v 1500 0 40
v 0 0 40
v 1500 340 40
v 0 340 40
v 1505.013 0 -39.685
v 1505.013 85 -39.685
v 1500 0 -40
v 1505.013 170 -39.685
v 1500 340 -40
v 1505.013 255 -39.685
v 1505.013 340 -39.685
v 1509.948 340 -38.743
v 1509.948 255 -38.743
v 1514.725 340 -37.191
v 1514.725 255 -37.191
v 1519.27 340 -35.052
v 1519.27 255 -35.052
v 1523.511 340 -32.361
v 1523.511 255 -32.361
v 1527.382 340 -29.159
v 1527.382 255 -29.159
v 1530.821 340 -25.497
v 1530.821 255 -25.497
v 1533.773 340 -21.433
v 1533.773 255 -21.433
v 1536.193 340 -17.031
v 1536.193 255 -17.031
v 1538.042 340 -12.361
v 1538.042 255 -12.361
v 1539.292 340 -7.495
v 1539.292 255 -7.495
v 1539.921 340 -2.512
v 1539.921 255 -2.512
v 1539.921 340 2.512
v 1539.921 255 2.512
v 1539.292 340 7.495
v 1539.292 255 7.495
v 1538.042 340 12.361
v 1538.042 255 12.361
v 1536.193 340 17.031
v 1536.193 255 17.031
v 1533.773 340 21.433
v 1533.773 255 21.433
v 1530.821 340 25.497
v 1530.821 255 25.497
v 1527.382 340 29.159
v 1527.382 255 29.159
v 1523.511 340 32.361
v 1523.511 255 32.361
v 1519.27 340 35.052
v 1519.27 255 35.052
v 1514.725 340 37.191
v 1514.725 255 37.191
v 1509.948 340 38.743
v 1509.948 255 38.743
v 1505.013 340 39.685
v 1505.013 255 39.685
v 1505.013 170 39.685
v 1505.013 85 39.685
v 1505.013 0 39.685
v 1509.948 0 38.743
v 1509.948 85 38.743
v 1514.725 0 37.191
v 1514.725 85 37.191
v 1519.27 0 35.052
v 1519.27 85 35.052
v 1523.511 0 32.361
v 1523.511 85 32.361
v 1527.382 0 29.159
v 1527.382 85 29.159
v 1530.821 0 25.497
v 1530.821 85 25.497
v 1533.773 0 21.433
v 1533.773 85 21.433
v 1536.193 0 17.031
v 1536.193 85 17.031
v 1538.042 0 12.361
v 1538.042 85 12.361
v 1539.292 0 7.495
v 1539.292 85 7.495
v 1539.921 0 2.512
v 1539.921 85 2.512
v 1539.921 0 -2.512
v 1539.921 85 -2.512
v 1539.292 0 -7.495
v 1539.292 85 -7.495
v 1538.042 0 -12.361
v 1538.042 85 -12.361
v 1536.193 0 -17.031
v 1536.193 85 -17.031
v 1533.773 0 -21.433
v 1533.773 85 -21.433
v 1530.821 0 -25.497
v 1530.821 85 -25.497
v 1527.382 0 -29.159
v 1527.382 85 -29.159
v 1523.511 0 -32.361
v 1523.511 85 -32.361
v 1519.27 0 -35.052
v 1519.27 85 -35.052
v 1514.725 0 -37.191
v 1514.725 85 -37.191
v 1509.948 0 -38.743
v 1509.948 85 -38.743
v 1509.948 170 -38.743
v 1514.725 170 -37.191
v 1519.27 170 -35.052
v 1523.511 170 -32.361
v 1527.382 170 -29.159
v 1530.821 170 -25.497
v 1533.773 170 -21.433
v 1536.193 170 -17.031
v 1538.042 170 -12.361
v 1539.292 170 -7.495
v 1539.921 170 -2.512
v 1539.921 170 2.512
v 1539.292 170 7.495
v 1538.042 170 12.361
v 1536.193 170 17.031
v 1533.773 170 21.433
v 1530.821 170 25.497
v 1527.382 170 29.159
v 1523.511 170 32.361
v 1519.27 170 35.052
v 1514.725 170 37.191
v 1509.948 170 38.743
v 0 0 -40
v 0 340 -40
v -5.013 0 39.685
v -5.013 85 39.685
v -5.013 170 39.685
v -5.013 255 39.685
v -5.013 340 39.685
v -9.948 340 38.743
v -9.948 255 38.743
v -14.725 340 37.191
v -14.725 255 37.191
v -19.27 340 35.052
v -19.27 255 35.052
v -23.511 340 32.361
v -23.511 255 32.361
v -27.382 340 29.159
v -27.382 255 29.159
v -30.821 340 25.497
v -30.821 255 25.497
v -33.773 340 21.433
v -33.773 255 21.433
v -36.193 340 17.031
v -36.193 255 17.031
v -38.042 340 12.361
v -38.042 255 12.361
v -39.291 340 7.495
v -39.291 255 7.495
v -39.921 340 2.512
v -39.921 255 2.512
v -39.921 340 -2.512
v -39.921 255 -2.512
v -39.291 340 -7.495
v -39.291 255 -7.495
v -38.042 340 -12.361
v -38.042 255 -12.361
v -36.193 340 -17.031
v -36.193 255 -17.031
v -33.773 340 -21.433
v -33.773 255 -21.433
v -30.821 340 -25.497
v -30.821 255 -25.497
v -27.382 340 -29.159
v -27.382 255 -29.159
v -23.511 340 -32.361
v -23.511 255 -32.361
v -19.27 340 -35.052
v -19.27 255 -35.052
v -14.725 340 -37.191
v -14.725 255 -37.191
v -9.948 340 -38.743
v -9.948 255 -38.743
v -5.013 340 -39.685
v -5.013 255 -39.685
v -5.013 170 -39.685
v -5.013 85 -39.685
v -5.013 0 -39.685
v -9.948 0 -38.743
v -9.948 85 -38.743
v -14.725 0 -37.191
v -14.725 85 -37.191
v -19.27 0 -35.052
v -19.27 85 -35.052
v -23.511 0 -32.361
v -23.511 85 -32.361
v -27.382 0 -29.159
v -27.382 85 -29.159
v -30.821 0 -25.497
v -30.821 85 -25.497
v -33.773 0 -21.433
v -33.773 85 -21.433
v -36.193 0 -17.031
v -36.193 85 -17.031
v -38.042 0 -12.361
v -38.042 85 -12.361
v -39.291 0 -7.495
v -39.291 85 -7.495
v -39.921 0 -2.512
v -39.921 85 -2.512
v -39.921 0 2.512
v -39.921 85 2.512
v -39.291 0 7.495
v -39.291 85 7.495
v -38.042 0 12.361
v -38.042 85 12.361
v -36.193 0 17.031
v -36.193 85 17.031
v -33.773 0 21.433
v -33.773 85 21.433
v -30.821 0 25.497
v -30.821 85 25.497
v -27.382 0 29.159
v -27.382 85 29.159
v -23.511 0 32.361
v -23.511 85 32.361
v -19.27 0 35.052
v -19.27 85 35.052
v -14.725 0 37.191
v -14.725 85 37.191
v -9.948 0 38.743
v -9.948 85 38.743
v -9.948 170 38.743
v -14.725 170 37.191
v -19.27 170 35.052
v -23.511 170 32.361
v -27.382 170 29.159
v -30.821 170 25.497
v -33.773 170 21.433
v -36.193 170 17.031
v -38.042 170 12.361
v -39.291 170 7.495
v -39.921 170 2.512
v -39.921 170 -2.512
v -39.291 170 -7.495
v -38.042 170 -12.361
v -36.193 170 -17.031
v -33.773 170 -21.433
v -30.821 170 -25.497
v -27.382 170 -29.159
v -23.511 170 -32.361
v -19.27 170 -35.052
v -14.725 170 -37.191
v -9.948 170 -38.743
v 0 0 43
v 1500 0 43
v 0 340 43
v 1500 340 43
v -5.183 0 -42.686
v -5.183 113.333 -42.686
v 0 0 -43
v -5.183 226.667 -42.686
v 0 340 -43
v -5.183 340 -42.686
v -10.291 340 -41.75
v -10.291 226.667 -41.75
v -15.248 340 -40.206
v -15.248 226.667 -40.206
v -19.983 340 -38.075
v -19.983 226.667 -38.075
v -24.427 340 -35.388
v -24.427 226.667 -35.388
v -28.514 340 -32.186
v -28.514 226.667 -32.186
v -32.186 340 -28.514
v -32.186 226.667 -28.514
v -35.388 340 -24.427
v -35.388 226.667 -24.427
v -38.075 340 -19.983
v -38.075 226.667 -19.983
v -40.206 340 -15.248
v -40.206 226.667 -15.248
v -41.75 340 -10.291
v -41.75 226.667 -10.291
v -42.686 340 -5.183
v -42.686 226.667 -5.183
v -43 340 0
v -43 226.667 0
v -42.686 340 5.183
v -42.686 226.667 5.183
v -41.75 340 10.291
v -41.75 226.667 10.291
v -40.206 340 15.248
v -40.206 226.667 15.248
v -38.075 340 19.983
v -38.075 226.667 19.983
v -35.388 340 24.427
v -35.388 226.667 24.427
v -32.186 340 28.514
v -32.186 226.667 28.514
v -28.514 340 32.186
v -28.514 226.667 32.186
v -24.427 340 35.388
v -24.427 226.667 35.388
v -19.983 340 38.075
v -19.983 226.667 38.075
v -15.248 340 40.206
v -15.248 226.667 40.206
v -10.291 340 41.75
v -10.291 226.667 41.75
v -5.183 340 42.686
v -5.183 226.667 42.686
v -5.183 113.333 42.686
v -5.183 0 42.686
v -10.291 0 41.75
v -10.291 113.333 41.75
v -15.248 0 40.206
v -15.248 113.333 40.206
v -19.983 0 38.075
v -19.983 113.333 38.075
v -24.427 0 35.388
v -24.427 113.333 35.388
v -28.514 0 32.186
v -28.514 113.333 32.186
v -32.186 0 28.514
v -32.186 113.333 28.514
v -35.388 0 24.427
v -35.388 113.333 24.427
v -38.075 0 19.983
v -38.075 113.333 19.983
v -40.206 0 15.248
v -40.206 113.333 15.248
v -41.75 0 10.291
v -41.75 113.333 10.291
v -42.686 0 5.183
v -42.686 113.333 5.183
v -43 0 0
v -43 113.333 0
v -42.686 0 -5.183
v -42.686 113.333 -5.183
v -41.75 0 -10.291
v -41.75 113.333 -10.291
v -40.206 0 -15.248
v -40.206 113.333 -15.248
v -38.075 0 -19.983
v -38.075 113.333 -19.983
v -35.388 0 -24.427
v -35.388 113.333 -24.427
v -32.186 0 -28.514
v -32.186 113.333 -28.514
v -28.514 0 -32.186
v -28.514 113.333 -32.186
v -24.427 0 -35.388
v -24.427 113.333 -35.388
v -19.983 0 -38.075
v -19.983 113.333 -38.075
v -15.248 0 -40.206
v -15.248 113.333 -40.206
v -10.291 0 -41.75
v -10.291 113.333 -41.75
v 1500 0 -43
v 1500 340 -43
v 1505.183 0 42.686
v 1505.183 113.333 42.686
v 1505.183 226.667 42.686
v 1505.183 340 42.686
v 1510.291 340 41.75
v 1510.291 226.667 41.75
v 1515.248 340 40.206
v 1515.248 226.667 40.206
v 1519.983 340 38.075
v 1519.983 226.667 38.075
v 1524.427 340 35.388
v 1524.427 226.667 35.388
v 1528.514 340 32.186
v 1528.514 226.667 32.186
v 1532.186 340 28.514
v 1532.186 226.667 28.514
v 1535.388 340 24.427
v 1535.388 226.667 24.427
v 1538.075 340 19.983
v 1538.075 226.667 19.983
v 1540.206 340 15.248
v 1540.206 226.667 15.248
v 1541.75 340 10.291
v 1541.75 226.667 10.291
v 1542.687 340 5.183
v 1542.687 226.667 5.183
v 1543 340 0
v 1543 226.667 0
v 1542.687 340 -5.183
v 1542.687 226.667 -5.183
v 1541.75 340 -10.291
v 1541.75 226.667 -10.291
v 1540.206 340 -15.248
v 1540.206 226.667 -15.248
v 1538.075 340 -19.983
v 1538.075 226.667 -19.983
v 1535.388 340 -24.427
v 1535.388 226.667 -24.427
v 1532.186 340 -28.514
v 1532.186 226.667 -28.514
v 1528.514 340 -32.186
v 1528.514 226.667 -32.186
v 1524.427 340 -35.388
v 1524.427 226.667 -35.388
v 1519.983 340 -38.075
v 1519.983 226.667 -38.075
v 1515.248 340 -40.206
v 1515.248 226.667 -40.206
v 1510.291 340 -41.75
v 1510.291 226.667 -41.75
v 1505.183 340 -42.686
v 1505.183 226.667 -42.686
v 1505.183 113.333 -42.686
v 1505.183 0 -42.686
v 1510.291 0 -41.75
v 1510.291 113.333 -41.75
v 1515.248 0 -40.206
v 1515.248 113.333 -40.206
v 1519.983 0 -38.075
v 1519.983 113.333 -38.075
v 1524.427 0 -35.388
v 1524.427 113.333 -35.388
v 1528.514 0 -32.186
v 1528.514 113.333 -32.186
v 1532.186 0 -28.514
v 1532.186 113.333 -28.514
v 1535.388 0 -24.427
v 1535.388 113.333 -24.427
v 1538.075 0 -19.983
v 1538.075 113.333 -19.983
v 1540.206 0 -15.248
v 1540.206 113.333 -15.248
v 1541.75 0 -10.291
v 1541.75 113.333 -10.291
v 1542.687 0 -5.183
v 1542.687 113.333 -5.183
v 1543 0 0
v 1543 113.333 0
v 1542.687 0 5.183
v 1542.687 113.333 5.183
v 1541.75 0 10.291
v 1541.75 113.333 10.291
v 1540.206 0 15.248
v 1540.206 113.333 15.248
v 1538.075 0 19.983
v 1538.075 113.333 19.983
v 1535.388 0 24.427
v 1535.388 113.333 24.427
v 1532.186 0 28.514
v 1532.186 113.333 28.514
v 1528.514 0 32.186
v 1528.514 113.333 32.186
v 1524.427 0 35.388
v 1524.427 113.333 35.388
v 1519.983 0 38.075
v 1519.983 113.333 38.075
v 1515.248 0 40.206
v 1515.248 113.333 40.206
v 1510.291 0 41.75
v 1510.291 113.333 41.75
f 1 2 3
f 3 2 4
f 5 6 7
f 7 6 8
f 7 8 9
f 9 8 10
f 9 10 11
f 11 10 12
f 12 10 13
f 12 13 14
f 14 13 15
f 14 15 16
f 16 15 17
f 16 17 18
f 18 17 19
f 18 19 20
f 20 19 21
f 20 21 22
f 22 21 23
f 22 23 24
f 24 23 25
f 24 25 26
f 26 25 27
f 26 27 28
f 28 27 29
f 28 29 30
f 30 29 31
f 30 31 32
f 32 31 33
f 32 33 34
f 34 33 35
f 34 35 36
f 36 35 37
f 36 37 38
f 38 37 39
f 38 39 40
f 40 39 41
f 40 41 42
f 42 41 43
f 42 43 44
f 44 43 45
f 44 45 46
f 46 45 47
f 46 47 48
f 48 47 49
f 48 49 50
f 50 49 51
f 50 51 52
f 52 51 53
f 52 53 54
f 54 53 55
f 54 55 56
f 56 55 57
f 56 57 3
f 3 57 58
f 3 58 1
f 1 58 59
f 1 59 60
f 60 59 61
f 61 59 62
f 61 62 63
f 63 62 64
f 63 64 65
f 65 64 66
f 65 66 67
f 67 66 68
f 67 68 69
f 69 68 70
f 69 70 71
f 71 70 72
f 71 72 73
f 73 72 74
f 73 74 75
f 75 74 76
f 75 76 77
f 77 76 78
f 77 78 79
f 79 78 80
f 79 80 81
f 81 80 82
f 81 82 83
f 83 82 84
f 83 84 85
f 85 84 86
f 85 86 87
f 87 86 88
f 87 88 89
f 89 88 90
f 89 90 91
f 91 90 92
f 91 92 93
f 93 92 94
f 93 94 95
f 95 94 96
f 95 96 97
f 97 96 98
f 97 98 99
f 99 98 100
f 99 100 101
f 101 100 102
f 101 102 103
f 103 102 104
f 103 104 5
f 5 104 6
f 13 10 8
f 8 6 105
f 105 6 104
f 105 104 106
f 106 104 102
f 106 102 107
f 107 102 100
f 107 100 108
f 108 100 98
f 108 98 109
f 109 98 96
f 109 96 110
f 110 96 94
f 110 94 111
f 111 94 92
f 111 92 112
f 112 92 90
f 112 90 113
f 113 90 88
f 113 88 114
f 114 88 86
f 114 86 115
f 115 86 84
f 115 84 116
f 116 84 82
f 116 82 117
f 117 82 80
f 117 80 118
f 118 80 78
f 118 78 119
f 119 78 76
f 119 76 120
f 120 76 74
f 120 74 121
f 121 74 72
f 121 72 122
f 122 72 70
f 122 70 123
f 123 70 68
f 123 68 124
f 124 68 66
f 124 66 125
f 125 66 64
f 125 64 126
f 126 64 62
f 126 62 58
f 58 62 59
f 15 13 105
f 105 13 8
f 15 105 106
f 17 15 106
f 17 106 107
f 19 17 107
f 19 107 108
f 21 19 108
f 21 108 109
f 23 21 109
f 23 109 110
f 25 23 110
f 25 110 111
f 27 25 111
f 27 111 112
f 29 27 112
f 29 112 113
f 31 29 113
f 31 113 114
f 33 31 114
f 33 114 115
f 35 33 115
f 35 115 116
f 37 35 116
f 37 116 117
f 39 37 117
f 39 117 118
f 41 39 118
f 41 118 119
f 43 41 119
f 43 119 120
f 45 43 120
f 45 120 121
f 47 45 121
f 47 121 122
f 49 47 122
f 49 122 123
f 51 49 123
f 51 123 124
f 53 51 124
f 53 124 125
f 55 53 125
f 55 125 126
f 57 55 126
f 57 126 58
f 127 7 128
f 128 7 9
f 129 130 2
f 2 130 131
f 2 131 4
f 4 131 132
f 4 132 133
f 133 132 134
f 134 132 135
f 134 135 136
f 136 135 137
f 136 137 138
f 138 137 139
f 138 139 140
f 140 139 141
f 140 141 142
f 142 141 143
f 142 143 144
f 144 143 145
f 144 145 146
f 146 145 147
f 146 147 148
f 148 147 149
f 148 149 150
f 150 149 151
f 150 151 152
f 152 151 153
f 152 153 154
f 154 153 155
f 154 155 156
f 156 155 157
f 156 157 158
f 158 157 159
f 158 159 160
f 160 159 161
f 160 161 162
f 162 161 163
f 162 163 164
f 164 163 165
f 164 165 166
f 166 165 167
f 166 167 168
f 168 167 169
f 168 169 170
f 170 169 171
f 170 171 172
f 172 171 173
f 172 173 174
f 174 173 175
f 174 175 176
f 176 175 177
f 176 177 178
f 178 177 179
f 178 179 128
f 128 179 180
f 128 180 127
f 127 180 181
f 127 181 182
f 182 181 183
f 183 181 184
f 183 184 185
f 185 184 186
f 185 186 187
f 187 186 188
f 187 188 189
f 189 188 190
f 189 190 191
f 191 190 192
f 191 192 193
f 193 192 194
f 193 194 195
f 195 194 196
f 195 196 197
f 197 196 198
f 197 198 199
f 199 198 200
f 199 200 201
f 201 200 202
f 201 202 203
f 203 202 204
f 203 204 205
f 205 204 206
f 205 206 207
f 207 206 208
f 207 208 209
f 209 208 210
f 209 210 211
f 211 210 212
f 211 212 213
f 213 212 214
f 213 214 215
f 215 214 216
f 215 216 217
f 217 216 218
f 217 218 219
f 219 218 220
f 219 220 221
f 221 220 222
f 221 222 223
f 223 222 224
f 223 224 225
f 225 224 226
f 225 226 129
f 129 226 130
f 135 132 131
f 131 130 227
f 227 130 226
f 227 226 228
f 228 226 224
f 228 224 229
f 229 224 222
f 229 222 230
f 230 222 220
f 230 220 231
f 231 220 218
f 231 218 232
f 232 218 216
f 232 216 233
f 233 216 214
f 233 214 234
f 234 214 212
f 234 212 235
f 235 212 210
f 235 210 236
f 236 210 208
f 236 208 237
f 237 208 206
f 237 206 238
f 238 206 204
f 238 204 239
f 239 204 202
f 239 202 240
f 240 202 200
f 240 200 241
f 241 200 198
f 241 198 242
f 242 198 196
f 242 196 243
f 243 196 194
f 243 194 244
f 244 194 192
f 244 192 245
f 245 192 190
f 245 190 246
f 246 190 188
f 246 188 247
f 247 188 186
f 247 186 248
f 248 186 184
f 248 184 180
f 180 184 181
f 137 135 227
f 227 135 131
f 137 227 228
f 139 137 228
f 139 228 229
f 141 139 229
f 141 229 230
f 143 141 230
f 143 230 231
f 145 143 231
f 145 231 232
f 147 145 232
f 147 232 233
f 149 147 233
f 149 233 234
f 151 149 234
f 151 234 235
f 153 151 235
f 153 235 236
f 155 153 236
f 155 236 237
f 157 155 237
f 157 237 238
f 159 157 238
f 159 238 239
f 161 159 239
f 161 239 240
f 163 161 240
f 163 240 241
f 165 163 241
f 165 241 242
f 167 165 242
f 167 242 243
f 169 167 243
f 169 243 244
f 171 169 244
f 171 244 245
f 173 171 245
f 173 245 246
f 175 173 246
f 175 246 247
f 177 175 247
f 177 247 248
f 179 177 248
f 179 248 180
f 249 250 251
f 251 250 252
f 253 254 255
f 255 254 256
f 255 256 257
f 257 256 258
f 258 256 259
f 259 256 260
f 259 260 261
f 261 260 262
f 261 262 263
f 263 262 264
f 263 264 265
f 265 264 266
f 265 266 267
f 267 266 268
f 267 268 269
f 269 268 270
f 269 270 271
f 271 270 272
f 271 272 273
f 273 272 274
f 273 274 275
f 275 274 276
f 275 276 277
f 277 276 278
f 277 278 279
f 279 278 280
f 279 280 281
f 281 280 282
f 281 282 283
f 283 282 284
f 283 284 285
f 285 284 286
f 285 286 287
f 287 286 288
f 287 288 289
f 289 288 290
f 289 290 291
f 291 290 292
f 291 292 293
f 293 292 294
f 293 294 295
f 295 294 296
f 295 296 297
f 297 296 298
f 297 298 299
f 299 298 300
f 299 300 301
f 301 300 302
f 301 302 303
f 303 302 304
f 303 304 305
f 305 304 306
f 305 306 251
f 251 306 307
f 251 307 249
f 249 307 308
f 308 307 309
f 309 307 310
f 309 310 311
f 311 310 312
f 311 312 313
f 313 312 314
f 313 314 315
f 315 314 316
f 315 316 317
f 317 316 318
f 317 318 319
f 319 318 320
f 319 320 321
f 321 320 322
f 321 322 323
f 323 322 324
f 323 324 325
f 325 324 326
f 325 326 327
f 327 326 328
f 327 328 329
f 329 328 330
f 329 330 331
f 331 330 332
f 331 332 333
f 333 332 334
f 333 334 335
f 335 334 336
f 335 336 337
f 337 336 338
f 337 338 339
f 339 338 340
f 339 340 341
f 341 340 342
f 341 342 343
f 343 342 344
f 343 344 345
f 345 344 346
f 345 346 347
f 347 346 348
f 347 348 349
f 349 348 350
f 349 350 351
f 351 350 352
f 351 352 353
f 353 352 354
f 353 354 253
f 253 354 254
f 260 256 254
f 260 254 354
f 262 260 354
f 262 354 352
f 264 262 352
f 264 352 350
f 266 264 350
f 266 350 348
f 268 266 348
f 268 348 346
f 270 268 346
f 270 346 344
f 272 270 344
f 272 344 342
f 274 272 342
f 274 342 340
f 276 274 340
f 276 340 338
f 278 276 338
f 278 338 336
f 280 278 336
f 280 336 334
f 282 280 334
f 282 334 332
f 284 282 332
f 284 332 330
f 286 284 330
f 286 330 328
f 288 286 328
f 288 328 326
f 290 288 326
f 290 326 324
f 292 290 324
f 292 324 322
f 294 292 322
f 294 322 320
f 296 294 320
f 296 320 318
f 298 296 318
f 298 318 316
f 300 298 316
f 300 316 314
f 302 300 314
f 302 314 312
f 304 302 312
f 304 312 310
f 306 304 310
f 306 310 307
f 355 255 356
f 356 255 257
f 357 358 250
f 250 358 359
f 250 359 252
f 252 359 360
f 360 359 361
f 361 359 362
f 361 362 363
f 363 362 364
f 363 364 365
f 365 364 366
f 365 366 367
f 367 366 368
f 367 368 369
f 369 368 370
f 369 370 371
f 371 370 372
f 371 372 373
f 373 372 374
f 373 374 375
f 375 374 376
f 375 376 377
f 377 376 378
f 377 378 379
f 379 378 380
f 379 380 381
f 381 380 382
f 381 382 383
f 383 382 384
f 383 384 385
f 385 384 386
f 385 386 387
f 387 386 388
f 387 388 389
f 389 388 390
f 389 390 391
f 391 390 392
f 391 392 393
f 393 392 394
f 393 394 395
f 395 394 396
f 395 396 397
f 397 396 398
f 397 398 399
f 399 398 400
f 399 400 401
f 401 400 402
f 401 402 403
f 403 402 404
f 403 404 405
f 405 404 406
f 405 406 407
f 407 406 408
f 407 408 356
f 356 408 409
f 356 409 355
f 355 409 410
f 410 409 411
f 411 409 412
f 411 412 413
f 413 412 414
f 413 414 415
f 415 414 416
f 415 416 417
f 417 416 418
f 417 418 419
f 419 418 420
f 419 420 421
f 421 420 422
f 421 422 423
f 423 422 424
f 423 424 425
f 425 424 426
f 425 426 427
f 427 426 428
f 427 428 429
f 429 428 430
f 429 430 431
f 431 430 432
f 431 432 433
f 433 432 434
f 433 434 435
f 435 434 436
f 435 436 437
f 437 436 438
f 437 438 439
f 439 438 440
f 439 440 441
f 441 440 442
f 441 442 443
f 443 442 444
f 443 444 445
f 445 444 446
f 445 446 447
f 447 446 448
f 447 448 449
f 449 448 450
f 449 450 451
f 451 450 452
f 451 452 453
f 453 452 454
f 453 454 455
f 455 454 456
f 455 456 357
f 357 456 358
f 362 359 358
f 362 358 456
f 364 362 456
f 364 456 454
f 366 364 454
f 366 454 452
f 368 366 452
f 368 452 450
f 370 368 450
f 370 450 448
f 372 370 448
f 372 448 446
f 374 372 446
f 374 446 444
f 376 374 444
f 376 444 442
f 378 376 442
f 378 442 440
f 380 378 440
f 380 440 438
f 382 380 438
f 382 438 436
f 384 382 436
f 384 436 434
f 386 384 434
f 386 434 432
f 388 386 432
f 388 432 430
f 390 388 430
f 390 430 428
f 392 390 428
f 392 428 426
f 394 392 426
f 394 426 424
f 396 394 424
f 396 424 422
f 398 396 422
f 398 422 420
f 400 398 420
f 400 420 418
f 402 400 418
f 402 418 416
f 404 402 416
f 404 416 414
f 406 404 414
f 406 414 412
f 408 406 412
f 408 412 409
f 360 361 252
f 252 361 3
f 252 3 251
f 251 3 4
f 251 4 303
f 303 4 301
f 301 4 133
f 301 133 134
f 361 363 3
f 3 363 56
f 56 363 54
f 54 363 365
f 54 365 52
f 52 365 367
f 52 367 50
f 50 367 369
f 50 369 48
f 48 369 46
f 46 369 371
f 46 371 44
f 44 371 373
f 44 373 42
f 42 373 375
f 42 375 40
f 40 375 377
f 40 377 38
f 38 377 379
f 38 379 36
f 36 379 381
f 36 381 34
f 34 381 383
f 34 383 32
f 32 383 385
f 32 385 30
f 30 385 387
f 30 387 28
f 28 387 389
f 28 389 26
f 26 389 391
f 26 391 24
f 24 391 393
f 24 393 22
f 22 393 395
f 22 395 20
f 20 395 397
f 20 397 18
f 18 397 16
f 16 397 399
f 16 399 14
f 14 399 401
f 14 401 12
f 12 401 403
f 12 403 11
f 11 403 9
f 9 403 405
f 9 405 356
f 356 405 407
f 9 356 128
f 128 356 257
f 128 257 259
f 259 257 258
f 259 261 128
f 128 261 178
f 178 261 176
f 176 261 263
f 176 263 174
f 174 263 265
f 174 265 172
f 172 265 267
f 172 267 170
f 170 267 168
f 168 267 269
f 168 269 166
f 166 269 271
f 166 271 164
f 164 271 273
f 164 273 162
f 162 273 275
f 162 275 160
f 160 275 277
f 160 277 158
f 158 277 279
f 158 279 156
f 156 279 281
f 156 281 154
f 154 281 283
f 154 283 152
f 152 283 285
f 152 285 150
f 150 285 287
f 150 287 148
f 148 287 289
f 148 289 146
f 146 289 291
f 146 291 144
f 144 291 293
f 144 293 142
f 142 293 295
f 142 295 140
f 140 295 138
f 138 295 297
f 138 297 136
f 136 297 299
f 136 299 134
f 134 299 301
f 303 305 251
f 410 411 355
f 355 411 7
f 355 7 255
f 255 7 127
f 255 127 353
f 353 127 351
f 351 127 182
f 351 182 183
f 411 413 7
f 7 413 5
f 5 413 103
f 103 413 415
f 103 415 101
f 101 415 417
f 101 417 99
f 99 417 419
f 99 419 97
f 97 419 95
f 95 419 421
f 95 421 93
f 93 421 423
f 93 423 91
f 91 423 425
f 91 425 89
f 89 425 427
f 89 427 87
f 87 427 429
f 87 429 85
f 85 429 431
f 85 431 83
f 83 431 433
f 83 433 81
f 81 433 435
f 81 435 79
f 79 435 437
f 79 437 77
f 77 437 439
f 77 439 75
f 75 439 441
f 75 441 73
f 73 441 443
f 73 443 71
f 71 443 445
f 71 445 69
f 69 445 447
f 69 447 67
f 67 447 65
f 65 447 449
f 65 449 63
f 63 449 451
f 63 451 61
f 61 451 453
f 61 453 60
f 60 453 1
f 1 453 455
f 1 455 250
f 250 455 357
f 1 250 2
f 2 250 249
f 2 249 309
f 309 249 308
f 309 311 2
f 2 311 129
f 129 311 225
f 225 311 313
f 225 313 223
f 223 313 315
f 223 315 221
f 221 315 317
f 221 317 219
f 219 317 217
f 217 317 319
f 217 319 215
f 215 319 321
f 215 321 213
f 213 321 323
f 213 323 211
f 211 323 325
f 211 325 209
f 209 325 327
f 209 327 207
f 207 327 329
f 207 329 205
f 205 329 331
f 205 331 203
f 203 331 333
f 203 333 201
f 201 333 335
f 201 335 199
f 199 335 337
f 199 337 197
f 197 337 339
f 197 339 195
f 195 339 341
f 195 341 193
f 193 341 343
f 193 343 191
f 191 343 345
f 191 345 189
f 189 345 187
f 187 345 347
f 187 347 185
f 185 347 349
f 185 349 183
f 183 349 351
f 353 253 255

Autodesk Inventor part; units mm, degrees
ref_plane "YZ Plane" through (0, 0, 0) normal (1, 0, 0) x (0, 1, 0)
ref_plane "XZ Plane" through (0, 0, 0) normal (0, 1, 0) x (-1, 0, 0)
ref_plane "XY Plane" through (0, 0, 0) normal (0, 0, 1) x (1, 0, 0)
sketch "Skizze1" plane through (0, 0, 0) normal (0, 1, 0) x (-1, 0, 0)
  arc A0 (0, -40) -> (0, 40) centre (0, 0) ccw
  arc A1 (0, -43) -> (0, 43) centre (0, 0) ccw
  arc A2 (-1500, 40) -> (-1500, -40) centre (-1500, 0) ccw
  arc A3 (-1500, 43) -> (-1500, -43) centre (-1500, 0) ccw
  line L0 (0, 43) -> (-1500, 43)
  line L1 (-1500, 40) -> (0, 40)
  line L2 (0, -40) -> (-1500, -40)
  line L3 (-1500, -43) -> (0, -43)
  dimension "d0" = 80
  dimension "d1" = 86
  dimension "d2" = 80
  dimension "d3" = 86
  dimension "d4" = 1500
extrude "Extrusion1" add sketch "Skizze1" along normal blind 340
properties part number "Band"
